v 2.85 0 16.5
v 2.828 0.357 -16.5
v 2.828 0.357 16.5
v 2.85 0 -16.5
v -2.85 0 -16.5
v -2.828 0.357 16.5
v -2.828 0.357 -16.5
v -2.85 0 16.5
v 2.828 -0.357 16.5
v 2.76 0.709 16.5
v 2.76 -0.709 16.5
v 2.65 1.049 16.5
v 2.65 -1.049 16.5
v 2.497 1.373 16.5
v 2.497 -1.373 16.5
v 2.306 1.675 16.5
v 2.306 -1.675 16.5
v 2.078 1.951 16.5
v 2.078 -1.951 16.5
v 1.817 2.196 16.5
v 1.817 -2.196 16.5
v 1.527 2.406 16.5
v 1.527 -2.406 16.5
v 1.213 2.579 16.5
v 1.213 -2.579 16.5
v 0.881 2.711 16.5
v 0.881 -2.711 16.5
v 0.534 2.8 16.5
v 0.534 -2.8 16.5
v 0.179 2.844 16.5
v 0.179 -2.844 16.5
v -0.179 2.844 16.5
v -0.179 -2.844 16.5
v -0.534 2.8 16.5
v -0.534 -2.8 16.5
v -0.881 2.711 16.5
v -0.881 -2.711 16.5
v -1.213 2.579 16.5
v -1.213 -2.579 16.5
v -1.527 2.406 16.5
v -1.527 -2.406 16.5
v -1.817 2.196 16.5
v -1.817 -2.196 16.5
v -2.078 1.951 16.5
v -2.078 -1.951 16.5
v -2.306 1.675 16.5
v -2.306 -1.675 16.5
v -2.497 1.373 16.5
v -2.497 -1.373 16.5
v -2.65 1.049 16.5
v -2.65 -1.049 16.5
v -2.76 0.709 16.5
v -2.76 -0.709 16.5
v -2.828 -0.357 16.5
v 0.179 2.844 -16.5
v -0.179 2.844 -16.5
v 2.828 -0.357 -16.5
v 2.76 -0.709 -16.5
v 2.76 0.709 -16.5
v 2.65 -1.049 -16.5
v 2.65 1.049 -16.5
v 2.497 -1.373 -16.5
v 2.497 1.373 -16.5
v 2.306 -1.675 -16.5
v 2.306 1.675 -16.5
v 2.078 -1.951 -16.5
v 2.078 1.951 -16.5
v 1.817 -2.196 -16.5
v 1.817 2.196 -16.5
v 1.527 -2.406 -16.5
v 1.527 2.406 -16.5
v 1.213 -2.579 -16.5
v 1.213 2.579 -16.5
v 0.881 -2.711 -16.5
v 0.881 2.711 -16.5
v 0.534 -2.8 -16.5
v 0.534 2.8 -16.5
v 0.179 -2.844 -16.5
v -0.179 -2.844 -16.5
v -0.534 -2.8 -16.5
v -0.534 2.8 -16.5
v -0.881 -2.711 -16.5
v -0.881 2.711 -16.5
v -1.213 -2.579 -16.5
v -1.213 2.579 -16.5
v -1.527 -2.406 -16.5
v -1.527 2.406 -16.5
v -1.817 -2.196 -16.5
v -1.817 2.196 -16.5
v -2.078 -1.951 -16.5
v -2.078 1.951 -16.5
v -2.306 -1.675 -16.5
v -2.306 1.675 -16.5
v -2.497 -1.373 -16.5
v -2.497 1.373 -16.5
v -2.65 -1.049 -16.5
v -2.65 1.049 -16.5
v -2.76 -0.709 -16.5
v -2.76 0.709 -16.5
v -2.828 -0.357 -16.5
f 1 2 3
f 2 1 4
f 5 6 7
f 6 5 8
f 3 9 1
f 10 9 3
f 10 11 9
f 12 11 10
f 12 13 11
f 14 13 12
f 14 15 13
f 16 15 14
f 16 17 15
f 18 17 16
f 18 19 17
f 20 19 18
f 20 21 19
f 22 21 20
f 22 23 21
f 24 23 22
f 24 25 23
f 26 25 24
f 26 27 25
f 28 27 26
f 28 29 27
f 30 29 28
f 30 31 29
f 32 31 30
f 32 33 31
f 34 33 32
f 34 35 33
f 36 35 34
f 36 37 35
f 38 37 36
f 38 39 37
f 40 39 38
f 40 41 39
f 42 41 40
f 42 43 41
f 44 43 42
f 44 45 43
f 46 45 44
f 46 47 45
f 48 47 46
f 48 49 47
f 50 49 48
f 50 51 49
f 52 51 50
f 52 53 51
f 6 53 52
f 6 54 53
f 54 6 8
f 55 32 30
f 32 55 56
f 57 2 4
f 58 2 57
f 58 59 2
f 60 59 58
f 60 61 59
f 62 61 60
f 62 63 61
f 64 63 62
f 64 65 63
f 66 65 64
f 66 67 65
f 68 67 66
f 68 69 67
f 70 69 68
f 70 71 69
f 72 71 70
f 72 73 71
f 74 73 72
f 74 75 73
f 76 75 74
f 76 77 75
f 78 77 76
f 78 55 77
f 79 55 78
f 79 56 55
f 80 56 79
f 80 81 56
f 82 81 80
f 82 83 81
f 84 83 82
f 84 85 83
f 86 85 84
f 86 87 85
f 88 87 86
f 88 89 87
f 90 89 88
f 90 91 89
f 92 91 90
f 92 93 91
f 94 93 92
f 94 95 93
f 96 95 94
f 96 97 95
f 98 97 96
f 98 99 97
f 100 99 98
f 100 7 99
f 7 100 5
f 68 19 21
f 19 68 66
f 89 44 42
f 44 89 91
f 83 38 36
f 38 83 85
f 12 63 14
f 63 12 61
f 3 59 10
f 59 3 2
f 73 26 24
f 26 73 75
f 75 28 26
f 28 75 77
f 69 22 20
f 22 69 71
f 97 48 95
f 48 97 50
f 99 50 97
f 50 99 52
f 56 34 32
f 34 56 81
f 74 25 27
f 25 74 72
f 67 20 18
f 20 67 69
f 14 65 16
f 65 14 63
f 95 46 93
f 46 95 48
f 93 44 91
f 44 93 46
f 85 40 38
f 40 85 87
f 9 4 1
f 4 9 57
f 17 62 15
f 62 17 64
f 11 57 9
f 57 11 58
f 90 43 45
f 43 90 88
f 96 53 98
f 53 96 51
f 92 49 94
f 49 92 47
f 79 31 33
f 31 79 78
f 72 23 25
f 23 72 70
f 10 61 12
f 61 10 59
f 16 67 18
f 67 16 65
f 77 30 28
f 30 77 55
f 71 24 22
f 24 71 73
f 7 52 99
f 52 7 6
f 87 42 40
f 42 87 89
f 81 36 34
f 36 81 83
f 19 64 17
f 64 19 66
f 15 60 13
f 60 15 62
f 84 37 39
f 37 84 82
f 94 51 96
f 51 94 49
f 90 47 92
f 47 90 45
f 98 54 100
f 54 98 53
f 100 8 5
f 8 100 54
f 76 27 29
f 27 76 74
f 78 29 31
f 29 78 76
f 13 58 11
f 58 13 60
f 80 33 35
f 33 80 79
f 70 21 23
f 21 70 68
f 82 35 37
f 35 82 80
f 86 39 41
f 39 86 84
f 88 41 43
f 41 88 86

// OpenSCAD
$fn = 50;


difference() {
	union() {
		translate(v = [0, 0, -16.5000000000]) {
			cylinder(h = 33, r = 2.8500000000);
		}
	}
	union() {
		translate(v = [0, 0, -100.0000000000]) {
			cylinder(h = 200, r = 0);
		}
	}
}
